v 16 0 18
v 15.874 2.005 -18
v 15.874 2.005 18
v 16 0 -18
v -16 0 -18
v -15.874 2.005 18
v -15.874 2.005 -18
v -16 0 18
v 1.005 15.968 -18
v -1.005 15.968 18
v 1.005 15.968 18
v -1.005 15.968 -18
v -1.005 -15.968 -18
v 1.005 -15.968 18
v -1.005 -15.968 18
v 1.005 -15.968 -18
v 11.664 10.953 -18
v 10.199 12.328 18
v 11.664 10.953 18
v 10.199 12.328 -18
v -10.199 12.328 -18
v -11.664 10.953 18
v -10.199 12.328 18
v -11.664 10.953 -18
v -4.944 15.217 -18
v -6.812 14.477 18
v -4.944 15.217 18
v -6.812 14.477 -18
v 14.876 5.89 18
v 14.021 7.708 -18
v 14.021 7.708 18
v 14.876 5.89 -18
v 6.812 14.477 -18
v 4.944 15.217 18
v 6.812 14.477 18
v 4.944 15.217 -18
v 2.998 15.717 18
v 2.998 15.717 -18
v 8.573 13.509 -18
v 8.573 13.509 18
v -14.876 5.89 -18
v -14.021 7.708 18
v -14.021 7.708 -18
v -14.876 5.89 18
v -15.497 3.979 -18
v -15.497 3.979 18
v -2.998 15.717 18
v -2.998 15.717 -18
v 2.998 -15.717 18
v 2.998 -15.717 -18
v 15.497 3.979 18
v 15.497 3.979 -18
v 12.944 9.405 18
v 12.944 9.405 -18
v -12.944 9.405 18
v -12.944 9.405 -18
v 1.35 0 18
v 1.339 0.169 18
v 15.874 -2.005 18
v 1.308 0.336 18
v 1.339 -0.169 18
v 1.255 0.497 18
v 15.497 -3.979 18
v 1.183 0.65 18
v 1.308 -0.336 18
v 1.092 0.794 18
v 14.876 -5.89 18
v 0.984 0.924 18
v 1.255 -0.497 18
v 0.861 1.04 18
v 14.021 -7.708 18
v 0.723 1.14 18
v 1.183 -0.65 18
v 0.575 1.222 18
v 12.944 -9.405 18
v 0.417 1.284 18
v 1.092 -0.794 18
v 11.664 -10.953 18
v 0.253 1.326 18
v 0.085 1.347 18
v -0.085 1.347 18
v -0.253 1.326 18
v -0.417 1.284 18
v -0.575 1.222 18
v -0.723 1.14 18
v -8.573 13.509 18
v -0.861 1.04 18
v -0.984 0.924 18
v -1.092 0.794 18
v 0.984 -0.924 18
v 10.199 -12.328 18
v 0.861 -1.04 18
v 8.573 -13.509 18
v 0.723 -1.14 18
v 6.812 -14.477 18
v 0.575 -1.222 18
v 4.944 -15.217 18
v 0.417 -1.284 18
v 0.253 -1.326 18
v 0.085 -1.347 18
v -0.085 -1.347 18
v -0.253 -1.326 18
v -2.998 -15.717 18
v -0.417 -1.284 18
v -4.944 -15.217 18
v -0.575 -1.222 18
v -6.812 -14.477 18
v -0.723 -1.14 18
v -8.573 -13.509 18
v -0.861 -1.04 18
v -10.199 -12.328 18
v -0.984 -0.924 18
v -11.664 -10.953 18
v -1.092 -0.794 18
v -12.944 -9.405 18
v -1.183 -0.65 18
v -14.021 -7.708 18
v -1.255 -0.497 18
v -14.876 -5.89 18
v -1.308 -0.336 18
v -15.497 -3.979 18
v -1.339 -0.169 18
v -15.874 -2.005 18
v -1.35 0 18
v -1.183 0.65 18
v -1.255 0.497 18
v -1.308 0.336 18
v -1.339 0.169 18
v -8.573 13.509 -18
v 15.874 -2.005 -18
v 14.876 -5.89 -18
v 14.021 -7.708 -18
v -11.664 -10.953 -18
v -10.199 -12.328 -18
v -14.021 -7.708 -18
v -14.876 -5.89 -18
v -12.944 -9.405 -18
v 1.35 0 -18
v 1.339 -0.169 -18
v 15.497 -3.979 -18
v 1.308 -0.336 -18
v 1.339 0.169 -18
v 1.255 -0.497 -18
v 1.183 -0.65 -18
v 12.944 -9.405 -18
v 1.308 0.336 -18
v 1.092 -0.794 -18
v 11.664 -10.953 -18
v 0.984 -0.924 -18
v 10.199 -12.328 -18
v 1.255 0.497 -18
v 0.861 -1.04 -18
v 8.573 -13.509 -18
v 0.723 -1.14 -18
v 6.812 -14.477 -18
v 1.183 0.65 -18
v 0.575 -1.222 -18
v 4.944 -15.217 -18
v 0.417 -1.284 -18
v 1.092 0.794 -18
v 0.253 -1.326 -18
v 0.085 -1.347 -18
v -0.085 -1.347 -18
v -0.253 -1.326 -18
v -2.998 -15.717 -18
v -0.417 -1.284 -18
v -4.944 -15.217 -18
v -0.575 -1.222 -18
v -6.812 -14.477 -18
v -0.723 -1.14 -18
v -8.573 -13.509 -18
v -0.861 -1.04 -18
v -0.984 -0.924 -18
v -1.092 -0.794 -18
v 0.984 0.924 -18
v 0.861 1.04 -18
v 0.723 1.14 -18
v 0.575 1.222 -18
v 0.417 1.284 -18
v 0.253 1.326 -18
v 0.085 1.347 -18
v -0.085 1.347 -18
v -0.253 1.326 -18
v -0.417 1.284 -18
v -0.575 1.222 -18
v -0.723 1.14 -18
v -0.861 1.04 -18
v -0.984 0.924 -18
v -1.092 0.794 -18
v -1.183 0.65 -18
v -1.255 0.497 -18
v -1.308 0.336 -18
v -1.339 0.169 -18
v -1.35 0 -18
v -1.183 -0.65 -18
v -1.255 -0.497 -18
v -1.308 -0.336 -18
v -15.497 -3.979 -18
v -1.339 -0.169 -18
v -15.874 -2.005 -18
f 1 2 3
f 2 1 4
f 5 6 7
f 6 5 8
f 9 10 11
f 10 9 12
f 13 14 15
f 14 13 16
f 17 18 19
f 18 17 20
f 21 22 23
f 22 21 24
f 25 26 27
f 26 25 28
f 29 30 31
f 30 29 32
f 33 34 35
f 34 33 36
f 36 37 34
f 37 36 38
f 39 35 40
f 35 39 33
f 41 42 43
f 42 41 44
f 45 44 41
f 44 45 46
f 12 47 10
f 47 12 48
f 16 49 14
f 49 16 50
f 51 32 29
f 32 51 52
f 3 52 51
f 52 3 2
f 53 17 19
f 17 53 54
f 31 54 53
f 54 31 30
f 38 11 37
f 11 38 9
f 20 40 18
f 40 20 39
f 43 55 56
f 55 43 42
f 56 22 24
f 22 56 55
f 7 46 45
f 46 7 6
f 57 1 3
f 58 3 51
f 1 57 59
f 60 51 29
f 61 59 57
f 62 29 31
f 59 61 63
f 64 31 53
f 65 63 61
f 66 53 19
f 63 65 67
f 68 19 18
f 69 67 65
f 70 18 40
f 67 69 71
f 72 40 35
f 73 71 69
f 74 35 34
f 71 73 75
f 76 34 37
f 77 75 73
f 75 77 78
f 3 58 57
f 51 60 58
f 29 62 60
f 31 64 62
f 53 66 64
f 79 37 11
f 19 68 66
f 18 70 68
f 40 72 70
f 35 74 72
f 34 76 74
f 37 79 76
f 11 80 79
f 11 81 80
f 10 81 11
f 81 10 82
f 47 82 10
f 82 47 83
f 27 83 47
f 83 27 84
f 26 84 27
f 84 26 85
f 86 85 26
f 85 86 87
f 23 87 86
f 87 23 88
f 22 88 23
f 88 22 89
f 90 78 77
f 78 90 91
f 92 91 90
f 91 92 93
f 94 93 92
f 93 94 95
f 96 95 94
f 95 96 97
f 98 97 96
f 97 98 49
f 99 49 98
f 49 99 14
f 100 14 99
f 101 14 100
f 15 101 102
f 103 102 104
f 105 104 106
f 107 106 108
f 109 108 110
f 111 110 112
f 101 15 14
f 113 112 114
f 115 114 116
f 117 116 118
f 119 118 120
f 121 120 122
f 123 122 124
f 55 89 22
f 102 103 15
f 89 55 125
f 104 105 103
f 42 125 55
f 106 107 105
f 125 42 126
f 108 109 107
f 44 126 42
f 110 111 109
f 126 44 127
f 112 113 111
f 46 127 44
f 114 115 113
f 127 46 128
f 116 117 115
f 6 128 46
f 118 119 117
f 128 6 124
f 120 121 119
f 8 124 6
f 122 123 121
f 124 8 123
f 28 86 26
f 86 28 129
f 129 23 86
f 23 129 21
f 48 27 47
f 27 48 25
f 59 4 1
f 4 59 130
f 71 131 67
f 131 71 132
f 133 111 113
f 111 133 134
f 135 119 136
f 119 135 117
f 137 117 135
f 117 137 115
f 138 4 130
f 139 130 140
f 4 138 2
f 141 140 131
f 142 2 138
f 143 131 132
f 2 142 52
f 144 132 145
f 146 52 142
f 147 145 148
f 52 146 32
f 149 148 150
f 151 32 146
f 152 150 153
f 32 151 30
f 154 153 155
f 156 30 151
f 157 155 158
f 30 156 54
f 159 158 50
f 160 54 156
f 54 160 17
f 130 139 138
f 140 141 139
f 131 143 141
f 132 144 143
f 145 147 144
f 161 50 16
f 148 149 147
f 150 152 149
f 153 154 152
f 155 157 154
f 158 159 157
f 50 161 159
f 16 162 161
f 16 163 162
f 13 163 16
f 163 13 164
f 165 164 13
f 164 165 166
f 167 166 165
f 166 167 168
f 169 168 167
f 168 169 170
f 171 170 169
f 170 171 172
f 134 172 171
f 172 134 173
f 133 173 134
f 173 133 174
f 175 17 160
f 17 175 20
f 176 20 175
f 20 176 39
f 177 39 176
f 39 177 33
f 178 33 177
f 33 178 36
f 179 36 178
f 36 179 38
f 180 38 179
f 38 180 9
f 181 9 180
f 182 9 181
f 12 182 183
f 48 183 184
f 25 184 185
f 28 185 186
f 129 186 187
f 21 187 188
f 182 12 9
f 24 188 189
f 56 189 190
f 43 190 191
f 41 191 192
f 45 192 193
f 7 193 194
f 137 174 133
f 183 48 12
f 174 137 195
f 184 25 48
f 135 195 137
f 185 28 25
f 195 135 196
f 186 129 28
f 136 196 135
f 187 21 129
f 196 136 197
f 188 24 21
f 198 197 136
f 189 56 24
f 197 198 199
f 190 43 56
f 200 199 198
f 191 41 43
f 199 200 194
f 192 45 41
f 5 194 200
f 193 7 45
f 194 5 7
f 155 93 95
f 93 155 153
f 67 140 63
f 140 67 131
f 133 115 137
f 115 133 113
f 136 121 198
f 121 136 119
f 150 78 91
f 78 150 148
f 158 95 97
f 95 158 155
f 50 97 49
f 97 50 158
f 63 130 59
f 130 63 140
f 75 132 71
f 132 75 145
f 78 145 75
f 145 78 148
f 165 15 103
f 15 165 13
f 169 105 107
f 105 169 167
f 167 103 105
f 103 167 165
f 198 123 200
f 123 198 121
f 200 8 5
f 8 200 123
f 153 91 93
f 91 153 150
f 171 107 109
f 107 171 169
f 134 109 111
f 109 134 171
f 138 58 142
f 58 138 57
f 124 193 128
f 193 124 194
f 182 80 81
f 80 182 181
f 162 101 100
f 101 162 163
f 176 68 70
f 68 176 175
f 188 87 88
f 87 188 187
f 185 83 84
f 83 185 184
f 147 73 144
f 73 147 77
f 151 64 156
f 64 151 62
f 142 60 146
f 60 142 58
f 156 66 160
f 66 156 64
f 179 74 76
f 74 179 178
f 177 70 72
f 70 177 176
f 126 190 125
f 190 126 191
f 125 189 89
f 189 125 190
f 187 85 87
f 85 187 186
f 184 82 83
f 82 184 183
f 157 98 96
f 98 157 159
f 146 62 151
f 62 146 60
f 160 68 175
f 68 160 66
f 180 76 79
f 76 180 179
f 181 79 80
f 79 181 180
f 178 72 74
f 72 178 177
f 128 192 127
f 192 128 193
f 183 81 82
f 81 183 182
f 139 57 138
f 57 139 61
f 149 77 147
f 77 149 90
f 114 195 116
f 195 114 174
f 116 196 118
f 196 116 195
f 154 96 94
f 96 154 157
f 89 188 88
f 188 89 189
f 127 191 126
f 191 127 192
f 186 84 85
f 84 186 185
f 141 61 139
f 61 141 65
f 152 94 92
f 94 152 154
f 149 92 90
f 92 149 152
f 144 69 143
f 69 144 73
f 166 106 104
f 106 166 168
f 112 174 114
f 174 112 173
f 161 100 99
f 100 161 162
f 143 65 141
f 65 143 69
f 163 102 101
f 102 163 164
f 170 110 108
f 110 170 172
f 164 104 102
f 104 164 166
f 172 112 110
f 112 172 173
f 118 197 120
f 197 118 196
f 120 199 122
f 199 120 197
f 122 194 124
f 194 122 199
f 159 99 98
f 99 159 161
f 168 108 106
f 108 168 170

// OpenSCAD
$fn = 50;


difference() {
	union() {
		translate(v = [0, 0, -18.0000000000]) {
			cylinder(h = 36, r = 16.0000000000);
		}
	}
	union() {
		translate(v = [0, 0, -100.0000000000]) {
			cylinder(h = 200, r = 1.3500000000);
		}
	}
}
